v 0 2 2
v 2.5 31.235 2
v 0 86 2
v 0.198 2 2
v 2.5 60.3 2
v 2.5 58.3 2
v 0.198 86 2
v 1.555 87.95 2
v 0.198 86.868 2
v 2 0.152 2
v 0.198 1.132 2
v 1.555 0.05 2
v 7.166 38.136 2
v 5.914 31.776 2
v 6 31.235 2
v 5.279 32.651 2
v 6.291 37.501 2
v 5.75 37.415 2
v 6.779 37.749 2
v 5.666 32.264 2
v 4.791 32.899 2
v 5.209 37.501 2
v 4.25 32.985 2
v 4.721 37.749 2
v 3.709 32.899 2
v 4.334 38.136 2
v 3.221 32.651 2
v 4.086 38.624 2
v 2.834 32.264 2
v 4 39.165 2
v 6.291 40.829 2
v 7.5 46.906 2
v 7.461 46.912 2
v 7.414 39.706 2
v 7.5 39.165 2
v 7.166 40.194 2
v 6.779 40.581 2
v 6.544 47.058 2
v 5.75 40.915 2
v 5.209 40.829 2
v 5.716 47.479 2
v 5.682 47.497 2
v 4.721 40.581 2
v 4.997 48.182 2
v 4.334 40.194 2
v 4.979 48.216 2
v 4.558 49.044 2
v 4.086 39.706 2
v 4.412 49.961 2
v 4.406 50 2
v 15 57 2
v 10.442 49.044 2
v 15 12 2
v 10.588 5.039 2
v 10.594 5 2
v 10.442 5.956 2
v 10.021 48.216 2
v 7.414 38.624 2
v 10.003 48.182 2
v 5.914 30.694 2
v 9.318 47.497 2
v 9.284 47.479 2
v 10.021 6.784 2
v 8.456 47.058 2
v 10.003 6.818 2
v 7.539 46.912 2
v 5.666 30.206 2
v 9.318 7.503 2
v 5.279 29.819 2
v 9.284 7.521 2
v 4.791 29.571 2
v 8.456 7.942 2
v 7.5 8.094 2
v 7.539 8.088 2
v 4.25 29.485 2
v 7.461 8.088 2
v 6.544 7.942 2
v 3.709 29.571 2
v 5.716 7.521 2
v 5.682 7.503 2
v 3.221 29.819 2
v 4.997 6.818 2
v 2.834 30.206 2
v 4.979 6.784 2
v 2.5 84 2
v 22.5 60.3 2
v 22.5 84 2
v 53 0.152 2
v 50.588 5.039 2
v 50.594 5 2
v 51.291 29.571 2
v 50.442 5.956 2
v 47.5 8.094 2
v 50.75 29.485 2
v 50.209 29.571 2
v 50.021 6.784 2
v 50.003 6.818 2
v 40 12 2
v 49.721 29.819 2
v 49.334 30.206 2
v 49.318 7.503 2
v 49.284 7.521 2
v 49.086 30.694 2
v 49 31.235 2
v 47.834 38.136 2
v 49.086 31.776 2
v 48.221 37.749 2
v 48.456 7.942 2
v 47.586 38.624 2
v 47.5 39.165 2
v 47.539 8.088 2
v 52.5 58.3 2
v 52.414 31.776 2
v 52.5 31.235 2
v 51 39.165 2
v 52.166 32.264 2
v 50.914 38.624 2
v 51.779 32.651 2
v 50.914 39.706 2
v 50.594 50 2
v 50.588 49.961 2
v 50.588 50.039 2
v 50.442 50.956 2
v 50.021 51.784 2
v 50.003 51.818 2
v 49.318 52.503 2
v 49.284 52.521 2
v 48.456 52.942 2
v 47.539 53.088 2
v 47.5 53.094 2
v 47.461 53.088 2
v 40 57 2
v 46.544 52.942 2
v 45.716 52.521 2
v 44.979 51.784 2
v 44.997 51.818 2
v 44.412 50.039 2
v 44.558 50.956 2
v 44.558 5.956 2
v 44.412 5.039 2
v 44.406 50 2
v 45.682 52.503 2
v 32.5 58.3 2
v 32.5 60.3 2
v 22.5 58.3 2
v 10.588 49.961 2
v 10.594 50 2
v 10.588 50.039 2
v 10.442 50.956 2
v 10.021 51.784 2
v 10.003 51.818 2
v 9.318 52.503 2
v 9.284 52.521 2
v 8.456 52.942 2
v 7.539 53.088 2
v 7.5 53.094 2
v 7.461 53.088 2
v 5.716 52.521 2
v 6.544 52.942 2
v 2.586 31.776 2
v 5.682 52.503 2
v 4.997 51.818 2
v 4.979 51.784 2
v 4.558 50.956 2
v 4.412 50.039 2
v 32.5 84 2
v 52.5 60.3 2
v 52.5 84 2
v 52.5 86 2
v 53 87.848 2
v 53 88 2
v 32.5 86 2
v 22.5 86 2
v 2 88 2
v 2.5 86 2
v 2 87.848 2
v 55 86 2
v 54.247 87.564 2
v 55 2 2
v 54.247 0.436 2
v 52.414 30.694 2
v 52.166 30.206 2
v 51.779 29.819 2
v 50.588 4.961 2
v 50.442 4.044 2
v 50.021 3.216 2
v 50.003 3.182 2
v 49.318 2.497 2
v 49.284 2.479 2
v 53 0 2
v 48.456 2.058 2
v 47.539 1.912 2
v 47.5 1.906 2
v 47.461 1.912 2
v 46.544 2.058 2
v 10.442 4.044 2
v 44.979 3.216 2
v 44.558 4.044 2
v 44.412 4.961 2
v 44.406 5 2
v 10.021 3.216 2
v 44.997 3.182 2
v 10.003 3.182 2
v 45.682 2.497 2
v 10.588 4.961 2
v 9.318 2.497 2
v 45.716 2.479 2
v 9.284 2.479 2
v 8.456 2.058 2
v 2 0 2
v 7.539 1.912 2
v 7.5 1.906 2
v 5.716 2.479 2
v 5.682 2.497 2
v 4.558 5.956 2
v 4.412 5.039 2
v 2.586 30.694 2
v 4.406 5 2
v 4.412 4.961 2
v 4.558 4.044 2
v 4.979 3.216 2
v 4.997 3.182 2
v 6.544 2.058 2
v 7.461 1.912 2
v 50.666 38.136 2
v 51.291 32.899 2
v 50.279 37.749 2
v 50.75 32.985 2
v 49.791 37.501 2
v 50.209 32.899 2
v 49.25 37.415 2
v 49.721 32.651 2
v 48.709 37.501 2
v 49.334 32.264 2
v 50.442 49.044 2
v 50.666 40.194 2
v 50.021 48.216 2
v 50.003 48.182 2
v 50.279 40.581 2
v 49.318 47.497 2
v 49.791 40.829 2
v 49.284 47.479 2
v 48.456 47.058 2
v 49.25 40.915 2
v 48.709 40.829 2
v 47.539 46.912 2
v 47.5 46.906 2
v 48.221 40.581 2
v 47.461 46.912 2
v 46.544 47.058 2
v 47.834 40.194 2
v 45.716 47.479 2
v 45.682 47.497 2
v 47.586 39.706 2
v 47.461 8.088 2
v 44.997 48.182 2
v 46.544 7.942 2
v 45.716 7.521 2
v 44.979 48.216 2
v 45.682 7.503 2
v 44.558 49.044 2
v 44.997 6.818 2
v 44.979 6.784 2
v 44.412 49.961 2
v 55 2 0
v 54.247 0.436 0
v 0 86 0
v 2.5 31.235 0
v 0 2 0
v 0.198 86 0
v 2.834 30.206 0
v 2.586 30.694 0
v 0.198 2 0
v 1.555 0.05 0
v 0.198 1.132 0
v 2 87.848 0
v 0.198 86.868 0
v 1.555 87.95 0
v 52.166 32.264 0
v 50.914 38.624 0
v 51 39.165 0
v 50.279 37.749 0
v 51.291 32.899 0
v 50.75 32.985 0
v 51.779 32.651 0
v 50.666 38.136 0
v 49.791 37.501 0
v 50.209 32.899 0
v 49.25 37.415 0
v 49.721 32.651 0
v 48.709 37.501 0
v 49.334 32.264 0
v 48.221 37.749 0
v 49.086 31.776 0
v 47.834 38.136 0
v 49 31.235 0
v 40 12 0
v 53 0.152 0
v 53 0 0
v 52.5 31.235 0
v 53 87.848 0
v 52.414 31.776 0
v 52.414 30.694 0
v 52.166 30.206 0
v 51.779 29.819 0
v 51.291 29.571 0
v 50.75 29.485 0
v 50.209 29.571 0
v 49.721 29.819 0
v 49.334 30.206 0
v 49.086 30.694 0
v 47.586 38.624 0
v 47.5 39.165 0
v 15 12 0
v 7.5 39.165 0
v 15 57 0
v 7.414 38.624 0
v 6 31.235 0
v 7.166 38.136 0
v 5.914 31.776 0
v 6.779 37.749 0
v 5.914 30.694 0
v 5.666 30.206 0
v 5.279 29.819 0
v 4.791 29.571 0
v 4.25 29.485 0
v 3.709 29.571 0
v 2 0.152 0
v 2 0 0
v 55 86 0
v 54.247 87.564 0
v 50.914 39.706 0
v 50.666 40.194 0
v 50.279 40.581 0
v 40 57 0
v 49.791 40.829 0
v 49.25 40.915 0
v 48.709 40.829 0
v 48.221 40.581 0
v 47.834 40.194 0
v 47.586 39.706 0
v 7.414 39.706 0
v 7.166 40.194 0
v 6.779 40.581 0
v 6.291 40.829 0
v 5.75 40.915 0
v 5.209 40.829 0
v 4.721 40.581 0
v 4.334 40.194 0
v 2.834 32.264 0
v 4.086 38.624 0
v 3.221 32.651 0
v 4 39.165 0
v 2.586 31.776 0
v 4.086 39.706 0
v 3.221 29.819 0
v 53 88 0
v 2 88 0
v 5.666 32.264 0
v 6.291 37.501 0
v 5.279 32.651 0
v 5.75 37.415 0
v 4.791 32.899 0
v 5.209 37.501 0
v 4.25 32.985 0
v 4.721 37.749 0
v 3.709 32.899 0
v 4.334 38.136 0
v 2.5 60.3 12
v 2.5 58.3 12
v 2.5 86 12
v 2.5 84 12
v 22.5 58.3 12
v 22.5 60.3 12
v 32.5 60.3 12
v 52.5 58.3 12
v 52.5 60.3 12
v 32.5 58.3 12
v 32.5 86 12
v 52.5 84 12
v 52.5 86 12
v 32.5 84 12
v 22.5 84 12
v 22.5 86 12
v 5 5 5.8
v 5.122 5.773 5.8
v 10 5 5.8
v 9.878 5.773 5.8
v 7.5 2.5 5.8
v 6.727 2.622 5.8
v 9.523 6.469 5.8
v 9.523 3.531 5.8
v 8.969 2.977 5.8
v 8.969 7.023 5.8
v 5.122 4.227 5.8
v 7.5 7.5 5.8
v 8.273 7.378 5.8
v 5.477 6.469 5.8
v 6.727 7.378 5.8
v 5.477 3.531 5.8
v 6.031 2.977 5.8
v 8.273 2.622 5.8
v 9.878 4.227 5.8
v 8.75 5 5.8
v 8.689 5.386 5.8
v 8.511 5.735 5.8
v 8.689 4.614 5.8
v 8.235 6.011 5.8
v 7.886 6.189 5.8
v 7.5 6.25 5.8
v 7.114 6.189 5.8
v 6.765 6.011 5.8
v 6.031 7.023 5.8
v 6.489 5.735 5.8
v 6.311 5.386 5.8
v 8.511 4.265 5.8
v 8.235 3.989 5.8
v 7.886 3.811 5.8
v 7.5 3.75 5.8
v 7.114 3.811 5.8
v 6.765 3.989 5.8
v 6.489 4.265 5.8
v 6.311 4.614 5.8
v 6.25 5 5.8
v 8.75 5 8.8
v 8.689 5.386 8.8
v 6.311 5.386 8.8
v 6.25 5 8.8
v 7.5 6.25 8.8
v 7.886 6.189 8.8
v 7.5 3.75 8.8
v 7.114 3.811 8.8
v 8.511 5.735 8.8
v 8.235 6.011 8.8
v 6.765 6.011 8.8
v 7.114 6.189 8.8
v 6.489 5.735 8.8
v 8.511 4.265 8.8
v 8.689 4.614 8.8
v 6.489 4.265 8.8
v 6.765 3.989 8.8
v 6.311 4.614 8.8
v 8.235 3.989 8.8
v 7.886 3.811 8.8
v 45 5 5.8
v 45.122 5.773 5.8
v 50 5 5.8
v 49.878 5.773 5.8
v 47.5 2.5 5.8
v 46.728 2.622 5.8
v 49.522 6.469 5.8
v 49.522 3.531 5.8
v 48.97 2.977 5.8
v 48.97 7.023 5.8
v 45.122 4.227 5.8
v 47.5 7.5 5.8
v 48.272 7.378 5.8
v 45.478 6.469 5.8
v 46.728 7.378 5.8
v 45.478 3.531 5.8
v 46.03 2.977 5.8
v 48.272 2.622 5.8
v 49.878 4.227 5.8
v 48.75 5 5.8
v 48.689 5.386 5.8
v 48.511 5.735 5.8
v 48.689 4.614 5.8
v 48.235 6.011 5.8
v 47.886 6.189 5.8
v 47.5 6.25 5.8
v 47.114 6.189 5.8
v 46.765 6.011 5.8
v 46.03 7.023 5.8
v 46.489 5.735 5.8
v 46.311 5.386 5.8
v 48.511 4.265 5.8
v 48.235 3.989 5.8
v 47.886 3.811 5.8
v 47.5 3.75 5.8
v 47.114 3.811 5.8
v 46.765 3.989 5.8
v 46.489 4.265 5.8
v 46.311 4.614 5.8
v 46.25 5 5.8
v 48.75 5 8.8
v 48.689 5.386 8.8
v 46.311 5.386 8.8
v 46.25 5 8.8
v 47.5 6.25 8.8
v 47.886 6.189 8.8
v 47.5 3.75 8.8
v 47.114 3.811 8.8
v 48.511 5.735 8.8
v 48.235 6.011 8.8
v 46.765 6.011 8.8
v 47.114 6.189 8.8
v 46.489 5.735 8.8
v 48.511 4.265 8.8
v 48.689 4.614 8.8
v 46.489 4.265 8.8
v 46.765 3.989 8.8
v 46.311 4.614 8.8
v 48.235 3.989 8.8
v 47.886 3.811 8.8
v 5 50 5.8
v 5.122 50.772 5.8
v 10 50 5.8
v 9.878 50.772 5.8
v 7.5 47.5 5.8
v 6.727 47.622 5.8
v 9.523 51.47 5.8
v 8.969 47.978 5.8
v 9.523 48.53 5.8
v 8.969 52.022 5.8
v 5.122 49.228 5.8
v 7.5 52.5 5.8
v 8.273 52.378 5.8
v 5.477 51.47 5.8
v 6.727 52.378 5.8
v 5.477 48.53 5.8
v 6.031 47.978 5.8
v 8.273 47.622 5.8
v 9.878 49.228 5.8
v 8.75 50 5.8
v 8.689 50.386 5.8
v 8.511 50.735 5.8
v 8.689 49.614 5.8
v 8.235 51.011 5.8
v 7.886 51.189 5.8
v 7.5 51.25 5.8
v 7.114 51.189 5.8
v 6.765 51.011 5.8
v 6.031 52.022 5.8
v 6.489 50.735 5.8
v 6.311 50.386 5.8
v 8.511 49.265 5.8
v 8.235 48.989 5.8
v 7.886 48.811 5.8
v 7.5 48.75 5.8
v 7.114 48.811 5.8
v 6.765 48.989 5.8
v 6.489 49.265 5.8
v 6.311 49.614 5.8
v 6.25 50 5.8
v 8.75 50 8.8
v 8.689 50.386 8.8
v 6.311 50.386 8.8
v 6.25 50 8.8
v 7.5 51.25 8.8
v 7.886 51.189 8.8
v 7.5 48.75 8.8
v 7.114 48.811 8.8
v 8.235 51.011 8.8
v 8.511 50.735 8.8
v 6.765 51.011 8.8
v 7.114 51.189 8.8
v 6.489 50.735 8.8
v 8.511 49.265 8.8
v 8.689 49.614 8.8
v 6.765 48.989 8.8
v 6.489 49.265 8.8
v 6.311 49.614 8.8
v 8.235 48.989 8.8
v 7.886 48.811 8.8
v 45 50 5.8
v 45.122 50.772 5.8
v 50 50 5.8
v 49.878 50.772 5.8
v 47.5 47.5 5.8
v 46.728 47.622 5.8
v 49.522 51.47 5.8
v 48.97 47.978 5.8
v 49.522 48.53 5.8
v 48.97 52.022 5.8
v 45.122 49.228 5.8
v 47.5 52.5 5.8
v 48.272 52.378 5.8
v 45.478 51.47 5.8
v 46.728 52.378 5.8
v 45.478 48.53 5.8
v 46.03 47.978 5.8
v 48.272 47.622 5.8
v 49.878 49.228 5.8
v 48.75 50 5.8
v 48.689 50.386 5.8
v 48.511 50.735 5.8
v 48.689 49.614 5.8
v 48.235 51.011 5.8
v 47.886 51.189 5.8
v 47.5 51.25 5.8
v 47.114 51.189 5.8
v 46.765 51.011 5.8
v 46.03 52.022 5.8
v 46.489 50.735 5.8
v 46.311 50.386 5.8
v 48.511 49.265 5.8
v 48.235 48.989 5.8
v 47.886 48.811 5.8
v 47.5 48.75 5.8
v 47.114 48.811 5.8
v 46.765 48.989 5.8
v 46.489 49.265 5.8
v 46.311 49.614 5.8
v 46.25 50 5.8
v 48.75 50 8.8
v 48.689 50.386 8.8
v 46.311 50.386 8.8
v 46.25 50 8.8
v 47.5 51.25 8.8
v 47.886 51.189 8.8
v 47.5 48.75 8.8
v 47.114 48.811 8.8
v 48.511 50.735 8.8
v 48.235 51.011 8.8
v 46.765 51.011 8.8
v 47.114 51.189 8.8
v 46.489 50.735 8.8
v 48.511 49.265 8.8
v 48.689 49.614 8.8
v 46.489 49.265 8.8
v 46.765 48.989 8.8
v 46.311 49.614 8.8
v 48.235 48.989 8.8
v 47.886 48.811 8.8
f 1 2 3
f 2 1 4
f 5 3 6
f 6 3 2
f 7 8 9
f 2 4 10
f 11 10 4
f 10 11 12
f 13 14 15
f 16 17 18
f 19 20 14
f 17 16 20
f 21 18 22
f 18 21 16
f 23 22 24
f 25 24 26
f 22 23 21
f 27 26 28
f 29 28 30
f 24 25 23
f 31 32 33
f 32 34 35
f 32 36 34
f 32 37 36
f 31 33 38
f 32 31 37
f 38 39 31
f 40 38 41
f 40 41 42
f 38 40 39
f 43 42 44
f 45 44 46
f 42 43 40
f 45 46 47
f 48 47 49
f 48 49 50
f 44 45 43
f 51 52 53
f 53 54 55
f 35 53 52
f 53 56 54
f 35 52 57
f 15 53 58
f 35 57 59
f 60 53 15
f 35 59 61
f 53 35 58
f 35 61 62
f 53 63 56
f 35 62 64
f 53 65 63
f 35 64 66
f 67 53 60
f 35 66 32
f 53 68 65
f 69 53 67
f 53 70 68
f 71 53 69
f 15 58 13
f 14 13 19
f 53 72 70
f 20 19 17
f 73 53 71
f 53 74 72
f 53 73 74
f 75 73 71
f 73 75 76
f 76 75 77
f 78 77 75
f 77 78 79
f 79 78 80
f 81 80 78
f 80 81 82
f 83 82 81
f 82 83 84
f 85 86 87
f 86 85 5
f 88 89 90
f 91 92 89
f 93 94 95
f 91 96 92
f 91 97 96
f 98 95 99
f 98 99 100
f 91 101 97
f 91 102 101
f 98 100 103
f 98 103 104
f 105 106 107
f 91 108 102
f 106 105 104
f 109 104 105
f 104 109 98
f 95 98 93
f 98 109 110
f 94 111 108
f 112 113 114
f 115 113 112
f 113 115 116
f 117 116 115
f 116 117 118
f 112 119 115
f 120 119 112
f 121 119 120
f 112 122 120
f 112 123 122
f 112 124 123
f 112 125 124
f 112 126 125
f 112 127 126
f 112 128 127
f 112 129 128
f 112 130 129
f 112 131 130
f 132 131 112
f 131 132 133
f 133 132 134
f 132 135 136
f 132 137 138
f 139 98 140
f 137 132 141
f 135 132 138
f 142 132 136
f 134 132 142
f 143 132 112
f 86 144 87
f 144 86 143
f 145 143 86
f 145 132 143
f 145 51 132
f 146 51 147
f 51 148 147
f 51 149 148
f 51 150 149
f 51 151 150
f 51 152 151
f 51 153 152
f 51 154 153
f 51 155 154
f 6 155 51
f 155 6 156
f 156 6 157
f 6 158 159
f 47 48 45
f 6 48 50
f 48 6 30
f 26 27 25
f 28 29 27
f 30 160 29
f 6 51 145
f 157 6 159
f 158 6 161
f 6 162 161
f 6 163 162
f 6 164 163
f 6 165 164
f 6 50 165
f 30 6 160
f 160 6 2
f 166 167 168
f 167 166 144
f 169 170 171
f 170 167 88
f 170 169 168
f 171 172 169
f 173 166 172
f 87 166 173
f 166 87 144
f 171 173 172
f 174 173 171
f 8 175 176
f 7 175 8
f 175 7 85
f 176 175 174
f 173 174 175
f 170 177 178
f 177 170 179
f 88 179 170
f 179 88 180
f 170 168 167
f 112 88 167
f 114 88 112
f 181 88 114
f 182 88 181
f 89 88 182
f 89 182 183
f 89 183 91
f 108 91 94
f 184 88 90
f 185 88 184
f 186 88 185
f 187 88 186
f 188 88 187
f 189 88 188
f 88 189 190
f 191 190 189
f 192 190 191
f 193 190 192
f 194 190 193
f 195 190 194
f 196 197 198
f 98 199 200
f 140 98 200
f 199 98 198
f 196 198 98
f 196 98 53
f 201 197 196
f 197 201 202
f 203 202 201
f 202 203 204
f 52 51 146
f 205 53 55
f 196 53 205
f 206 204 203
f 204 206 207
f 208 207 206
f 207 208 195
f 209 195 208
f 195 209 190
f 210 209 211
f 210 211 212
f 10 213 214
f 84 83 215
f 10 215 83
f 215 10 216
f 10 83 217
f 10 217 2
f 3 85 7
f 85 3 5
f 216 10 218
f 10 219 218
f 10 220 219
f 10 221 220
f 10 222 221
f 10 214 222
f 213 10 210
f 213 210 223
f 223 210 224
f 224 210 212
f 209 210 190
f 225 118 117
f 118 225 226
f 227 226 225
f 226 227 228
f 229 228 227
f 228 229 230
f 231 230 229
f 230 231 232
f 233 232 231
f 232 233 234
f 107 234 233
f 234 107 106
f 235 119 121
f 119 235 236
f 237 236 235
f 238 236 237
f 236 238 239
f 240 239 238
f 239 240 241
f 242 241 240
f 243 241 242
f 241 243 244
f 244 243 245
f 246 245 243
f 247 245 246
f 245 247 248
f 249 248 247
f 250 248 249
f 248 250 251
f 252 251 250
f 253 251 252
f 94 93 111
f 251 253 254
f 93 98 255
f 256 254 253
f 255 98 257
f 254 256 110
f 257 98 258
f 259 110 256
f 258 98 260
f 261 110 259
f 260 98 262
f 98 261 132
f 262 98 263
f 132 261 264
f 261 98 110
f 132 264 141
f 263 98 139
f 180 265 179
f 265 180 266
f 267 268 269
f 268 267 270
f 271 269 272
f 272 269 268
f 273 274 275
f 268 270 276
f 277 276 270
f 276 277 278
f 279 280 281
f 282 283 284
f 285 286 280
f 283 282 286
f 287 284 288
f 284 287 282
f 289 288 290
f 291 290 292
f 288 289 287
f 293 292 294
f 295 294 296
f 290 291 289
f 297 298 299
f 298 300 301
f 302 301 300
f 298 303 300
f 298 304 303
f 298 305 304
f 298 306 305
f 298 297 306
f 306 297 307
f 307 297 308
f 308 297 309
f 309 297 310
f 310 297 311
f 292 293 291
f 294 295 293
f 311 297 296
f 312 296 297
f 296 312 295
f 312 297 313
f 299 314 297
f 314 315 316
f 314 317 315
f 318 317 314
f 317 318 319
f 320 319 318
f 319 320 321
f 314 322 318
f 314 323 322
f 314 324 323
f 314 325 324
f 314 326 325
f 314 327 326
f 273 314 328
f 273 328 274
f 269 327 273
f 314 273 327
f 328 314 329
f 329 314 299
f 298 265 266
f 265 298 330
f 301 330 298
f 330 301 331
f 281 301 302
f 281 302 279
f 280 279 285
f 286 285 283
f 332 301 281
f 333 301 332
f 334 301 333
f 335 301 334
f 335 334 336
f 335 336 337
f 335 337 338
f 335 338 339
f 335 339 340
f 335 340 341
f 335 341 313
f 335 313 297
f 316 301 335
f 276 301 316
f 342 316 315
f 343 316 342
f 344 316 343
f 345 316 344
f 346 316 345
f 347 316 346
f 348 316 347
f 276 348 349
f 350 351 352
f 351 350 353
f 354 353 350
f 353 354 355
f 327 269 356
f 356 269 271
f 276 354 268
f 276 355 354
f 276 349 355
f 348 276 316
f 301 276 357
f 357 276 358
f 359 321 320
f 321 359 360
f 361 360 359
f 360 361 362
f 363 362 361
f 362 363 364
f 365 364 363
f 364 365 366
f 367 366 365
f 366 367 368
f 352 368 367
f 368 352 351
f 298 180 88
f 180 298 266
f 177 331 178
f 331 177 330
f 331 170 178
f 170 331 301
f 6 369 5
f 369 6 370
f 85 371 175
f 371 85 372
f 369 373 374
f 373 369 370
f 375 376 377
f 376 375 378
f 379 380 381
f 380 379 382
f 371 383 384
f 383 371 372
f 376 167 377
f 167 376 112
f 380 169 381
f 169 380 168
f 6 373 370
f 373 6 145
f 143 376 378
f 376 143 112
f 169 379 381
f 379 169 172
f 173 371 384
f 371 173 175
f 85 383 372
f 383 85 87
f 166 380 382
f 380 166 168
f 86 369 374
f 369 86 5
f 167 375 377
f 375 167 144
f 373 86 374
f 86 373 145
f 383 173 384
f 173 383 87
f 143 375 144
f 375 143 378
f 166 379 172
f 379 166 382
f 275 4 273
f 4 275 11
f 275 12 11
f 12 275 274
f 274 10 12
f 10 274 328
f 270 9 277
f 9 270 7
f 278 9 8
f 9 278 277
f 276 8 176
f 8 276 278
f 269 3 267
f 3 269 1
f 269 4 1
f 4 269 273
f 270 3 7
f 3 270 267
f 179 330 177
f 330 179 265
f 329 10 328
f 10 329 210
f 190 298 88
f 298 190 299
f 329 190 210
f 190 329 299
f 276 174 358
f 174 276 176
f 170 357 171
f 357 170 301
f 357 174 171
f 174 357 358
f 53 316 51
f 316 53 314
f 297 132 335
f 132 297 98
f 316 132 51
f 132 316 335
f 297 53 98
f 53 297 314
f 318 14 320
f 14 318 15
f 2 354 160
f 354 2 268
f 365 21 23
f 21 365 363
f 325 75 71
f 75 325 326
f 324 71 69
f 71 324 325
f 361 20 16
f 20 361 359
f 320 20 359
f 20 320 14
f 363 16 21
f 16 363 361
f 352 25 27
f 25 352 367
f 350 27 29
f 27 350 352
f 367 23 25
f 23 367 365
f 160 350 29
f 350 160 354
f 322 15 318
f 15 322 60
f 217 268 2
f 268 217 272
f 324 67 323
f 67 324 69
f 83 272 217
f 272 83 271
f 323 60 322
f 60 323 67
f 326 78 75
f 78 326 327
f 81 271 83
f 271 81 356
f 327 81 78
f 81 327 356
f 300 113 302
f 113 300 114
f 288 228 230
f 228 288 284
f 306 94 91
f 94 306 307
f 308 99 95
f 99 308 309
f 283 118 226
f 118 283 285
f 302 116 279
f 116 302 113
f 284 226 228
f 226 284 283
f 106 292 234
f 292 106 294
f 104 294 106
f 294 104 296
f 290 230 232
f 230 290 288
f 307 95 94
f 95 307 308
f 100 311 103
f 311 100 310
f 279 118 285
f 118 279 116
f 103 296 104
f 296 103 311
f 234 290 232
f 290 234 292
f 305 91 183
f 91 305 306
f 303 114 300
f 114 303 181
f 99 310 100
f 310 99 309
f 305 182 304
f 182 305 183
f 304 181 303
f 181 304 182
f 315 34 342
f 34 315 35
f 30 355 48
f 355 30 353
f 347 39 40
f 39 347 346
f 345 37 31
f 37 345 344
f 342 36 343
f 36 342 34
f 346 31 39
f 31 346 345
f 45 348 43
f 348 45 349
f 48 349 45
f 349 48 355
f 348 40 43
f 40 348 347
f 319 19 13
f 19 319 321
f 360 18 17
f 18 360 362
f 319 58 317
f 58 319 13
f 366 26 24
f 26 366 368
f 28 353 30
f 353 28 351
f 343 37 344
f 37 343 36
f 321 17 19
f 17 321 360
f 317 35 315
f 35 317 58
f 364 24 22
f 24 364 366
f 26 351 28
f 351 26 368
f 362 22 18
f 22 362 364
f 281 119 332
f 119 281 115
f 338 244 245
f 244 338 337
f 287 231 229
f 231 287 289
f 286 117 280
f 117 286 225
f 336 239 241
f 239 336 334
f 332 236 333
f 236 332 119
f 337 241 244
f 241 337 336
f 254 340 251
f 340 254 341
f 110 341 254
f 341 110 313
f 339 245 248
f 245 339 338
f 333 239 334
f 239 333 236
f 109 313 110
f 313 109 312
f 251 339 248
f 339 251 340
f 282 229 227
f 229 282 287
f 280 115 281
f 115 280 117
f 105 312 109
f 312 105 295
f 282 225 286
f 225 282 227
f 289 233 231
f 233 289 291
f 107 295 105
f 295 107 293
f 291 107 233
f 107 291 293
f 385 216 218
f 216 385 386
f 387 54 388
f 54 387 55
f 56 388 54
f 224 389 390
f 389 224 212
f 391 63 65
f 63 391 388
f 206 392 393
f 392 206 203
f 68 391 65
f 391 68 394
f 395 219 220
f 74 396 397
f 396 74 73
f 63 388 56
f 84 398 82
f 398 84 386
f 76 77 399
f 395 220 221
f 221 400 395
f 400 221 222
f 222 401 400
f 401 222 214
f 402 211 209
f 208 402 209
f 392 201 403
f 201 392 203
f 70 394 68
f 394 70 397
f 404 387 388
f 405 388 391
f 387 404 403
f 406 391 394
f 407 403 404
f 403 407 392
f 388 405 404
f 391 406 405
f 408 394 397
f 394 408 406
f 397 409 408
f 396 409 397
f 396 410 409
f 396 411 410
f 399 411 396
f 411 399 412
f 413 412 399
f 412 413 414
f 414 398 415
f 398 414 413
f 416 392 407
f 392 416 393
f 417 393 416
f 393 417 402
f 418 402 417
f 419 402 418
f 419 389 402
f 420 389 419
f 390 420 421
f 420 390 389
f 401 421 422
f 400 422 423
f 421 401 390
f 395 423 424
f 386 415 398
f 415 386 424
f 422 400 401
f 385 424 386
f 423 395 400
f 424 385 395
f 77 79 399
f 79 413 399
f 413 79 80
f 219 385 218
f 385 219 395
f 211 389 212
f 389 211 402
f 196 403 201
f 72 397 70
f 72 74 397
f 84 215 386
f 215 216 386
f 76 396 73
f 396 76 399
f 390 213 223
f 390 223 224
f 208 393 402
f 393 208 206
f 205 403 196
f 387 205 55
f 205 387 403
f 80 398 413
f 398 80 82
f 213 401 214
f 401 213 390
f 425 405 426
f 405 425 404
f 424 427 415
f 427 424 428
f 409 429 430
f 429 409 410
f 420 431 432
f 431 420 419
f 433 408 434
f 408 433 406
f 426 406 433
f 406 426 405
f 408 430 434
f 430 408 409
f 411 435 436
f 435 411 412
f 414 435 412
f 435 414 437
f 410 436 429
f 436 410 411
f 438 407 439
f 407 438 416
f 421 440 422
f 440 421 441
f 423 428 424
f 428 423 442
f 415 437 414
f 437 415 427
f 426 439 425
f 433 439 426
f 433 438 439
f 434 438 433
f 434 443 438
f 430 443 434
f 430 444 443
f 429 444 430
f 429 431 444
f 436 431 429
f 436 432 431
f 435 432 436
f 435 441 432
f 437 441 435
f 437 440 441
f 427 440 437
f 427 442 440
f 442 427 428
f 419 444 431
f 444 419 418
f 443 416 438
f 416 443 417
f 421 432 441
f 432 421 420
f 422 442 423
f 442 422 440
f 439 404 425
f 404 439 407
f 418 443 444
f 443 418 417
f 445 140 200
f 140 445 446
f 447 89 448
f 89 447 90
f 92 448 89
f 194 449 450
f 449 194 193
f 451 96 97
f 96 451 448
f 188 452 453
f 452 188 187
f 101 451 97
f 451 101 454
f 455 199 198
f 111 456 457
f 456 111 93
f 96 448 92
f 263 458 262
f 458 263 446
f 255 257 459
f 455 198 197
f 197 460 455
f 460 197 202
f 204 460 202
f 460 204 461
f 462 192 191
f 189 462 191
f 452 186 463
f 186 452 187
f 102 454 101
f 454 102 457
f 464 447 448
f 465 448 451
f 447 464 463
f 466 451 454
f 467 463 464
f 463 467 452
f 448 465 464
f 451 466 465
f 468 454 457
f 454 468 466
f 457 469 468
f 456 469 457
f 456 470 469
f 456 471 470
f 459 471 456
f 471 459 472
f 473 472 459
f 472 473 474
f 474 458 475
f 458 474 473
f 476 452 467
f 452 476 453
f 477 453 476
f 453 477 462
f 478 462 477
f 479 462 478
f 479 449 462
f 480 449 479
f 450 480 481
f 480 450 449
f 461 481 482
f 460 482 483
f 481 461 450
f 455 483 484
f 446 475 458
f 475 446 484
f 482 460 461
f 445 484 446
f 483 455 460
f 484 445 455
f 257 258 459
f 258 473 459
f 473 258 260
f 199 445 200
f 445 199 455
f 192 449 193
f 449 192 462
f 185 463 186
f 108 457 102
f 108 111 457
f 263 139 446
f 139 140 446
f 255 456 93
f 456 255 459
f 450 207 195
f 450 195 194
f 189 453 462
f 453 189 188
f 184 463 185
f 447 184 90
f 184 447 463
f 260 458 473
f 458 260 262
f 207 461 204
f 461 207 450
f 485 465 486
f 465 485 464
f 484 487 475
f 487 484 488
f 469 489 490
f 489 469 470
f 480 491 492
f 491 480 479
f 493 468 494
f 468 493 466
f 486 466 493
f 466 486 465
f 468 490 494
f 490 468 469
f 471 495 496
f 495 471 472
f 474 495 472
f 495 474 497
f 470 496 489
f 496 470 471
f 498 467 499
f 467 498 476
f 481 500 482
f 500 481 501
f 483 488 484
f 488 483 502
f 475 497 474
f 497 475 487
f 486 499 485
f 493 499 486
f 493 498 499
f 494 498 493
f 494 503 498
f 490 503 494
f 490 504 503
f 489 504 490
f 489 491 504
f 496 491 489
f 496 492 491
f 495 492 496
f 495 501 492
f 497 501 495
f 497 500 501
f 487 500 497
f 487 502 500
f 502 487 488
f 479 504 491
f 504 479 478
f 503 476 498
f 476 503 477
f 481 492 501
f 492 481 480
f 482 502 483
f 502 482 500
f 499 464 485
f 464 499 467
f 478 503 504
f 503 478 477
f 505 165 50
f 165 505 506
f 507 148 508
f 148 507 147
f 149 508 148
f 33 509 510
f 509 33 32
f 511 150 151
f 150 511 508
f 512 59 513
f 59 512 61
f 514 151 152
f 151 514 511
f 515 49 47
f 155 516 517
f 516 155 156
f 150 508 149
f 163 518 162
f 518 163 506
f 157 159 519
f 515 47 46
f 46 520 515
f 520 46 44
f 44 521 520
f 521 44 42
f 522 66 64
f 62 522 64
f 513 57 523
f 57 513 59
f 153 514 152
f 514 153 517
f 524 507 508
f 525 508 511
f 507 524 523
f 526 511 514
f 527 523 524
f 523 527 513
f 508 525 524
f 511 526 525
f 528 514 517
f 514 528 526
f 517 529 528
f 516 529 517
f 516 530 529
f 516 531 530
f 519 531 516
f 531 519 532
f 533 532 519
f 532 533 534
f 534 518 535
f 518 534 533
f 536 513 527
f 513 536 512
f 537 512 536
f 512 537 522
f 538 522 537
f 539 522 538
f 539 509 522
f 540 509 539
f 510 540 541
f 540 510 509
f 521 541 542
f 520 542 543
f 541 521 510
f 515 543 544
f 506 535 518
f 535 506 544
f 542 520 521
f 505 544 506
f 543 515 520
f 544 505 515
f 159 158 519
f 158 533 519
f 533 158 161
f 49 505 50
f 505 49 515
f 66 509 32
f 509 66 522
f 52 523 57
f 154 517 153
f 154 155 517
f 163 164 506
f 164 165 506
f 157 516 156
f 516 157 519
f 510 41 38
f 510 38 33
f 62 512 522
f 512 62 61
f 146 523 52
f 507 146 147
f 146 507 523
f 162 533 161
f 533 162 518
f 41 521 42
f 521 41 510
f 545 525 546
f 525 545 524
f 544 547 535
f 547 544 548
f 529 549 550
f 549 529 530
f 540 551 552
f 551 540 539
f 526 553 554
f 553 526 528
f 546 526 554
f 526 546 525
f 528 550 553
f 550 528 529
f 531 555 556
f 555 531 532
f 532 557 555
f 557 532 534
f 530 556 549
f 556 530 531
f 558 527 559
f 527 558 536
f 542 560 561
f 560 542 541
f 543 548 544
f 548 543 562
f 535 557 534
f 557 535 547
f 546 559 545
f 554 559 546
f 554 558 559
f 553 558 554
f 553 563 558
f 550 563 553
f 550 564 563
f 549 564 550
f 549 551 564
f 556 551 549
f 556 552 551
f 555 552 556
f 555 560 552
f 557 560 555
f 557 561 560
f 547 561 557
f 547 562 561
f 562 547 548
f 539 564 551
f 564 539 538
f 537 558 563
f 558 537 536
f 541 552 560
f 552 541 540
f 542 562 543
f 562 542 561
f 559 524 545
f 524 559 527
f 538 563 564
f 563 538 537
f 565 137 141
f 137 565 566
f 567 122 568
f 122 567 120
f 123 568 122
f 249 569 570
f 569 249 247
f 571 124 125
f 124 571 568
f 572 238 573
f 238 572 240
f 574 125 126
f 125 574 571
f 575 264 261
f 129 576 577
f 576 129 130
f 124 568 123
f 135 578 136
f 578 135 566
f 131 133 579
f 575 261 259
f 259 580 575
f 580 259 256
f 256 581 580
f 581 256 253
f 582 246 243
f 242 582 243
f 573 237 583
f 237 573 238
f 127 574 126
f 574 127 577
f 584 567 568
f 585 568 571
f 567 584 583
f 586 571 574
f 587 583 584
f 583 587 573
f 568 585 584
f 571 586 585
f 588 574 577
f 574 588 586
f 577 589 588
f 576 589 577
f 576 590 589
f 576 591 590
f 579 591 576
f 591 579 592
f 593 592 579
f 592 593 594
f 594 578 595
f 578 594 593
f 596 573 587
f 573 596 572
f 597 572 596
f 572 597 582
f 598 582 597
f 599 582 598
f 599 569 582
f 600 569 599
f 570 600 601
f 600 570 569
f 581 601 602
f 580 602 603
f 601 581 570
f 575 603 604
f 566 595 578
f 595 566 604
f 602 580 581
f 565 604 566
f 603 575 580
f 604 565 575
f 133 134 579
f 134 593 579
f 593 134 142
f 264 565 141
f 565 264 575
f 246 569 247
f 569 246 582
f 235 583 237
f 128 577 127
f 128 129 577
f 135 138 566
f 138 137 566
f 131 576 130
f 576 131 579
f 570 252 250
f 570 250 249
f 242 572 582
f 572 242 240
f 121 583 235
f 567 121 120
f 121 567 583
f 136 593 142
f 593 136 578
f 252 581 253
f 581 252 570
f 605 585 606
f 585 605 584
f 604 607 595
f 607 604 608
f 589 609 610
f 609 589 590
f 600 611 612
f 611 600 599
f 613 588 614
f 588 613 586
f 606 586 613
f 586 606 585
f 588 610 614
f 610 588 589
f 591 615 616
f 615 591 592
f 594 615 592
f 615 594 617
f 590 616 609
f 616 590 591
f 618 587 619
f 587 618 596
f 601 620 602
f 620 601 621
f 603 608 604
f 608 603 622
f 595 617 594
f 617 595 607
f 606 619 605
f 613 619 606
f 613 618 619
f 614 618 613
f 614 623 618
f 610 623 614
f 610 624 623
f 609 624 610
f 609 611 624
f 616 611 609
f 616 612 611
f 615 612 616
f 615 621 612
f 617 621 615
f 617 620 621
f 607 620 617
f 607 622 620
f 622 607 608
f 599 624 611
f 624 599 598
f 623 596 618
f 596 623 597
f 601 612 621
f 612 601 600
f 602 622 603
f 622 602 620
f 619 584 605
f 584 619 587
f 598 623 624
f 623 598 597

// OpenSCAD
// stalak za itead lm motor kontroler i croduino novu na robotskim kolicima

flatw=55;
flatl=88;
flath=2;
bevelradius=2;

unow=53.53;
unol=68.72;

nova_l=50;
nova_w=23.7;
moto_a=50;
moto_b=55.1;
moto_hole_a=40;
moto_hole_b=45;

hcw=46;
hch=1.7;
holed=3.5;

pind=2.5;
pinh=3;

union(){
    difference(){
        podloga(flatw,flatl,flath,bevelradius);
        rupe([flatw/2,flatl/2.5,flath/2],flath,holed/2);
    }
    pinovi(4,pind/2,[(flatw-moto_hole_a)/2,5,flath-0.2],pinh);
}

// povrsina ispod uno plocice
module podloga(flatw,flatl,flath,bevelradius){

    inw=flatw-2*bevelradius;
    inl=flatl-2*bevelradius;

    translate([bevelradius,bevelradius,0]){
        difference(){
            union(){
                cube([inw,inl,flath],false);
                cylinder(flath,bevelradius,bevelradius,false);
                translate([inw,0,0]){
                    cylinder(flath,bevelradius,bevelradius,false);
                    translate([0,inl,0]){
                        cylinder(flath,bevelradius,bevelradius,false);
                    }
                }
                translate([0,inl,0]){cylinder(flath,bevelradius,bevelradius,false);}
                
                translate([-bevelradius,0,0]){cube([bevelradius,inl,flath],false);}
                translate([inw,0,0]){cube([bevelradius,inl,flath],false);}
                translate([0,-bevelradius,0]){cube([inw,bevelradius,flath],false);}
                translate([0,inl,0]){cube([inw,bevelradius,flath],false);}
                
                //translate([inw/2-hcw/2-2,inl+bevelradius,0]){cube([hcw+4,10,flath],false)};
                translate([inw/2,inl-2-nova_w/2,flath+5]){
                    difference(){
                        cube([nova_l,nova_w+4,10],true);
                        cube([nova_l+2,nova_w,11],true);
                        cube([10,nova_w+6,11],true);
                    }
                }

            }
            translate([inw/2,45/2+10,flath/2]){cube([25,45,10],true);}
        }
    }
}

module pinovi(lift,pinr,off,pinh){
    
    startpinr=2.5*pinr;
    endpinr=2*pinr;
    pin1=[0,0,0];
    pin2=[moto_hole_a,0,0];
    pin3=[0,moto_hole_b,0];
    pin4=[moto_hole_a,moto_hole_b,0];
    
    translate(off){
        translate(pin1){
            union(){
                cylinder(lift,startpinr,endpinr,false,$fn=20);
                cylinder(lift+pinh,pinr,pinr,false,$fn=20);
            }
        }
        translate(pin2){
            union(){
                cylinder(lift,startpinr,endpinr,false,$fn=20);
                cylinder(lift+pinh,pinr,pinr,false,$fn=20);
            }
        }
        translate(pin3){
            union(){
                cylinder(lift,startpinr,endpinr,false,$fn=20);
                cylinder(lift+pinh,pinr,pinr,false,$fn=20);
            }
        }
        translate(pin4){
            union(){
                cylinder(lift,startpinr,endpinr,false,$fn=20);
                cylinder(lift+pinh,pinr,pinr,false,$fn=20);
            }
        }
    }
}

module rupe(off,h,r){
    
    wsplit1=46.5;
    wsplit2=43.5;
    lsplit=7.93;
    
    translate(off){
        translate([-wsplit1/2,-lsplit/2,0]){cylinder(h+0.2,r,r,true,$fn=20);}
        translate([wsplit1/2,-lsplit/2,0]){cylinder(h+0.2,r,r,true,$fn=20);}
        translate([-wsplit2/2,lsplit/2,0]){cylinder(h+0.2,r,r,true,$fn=20);}
        translate([wsplit2/2,lsplit/2,0]){cylinder(h+0.2,r,r,true,$fn=20);}
    }
}
